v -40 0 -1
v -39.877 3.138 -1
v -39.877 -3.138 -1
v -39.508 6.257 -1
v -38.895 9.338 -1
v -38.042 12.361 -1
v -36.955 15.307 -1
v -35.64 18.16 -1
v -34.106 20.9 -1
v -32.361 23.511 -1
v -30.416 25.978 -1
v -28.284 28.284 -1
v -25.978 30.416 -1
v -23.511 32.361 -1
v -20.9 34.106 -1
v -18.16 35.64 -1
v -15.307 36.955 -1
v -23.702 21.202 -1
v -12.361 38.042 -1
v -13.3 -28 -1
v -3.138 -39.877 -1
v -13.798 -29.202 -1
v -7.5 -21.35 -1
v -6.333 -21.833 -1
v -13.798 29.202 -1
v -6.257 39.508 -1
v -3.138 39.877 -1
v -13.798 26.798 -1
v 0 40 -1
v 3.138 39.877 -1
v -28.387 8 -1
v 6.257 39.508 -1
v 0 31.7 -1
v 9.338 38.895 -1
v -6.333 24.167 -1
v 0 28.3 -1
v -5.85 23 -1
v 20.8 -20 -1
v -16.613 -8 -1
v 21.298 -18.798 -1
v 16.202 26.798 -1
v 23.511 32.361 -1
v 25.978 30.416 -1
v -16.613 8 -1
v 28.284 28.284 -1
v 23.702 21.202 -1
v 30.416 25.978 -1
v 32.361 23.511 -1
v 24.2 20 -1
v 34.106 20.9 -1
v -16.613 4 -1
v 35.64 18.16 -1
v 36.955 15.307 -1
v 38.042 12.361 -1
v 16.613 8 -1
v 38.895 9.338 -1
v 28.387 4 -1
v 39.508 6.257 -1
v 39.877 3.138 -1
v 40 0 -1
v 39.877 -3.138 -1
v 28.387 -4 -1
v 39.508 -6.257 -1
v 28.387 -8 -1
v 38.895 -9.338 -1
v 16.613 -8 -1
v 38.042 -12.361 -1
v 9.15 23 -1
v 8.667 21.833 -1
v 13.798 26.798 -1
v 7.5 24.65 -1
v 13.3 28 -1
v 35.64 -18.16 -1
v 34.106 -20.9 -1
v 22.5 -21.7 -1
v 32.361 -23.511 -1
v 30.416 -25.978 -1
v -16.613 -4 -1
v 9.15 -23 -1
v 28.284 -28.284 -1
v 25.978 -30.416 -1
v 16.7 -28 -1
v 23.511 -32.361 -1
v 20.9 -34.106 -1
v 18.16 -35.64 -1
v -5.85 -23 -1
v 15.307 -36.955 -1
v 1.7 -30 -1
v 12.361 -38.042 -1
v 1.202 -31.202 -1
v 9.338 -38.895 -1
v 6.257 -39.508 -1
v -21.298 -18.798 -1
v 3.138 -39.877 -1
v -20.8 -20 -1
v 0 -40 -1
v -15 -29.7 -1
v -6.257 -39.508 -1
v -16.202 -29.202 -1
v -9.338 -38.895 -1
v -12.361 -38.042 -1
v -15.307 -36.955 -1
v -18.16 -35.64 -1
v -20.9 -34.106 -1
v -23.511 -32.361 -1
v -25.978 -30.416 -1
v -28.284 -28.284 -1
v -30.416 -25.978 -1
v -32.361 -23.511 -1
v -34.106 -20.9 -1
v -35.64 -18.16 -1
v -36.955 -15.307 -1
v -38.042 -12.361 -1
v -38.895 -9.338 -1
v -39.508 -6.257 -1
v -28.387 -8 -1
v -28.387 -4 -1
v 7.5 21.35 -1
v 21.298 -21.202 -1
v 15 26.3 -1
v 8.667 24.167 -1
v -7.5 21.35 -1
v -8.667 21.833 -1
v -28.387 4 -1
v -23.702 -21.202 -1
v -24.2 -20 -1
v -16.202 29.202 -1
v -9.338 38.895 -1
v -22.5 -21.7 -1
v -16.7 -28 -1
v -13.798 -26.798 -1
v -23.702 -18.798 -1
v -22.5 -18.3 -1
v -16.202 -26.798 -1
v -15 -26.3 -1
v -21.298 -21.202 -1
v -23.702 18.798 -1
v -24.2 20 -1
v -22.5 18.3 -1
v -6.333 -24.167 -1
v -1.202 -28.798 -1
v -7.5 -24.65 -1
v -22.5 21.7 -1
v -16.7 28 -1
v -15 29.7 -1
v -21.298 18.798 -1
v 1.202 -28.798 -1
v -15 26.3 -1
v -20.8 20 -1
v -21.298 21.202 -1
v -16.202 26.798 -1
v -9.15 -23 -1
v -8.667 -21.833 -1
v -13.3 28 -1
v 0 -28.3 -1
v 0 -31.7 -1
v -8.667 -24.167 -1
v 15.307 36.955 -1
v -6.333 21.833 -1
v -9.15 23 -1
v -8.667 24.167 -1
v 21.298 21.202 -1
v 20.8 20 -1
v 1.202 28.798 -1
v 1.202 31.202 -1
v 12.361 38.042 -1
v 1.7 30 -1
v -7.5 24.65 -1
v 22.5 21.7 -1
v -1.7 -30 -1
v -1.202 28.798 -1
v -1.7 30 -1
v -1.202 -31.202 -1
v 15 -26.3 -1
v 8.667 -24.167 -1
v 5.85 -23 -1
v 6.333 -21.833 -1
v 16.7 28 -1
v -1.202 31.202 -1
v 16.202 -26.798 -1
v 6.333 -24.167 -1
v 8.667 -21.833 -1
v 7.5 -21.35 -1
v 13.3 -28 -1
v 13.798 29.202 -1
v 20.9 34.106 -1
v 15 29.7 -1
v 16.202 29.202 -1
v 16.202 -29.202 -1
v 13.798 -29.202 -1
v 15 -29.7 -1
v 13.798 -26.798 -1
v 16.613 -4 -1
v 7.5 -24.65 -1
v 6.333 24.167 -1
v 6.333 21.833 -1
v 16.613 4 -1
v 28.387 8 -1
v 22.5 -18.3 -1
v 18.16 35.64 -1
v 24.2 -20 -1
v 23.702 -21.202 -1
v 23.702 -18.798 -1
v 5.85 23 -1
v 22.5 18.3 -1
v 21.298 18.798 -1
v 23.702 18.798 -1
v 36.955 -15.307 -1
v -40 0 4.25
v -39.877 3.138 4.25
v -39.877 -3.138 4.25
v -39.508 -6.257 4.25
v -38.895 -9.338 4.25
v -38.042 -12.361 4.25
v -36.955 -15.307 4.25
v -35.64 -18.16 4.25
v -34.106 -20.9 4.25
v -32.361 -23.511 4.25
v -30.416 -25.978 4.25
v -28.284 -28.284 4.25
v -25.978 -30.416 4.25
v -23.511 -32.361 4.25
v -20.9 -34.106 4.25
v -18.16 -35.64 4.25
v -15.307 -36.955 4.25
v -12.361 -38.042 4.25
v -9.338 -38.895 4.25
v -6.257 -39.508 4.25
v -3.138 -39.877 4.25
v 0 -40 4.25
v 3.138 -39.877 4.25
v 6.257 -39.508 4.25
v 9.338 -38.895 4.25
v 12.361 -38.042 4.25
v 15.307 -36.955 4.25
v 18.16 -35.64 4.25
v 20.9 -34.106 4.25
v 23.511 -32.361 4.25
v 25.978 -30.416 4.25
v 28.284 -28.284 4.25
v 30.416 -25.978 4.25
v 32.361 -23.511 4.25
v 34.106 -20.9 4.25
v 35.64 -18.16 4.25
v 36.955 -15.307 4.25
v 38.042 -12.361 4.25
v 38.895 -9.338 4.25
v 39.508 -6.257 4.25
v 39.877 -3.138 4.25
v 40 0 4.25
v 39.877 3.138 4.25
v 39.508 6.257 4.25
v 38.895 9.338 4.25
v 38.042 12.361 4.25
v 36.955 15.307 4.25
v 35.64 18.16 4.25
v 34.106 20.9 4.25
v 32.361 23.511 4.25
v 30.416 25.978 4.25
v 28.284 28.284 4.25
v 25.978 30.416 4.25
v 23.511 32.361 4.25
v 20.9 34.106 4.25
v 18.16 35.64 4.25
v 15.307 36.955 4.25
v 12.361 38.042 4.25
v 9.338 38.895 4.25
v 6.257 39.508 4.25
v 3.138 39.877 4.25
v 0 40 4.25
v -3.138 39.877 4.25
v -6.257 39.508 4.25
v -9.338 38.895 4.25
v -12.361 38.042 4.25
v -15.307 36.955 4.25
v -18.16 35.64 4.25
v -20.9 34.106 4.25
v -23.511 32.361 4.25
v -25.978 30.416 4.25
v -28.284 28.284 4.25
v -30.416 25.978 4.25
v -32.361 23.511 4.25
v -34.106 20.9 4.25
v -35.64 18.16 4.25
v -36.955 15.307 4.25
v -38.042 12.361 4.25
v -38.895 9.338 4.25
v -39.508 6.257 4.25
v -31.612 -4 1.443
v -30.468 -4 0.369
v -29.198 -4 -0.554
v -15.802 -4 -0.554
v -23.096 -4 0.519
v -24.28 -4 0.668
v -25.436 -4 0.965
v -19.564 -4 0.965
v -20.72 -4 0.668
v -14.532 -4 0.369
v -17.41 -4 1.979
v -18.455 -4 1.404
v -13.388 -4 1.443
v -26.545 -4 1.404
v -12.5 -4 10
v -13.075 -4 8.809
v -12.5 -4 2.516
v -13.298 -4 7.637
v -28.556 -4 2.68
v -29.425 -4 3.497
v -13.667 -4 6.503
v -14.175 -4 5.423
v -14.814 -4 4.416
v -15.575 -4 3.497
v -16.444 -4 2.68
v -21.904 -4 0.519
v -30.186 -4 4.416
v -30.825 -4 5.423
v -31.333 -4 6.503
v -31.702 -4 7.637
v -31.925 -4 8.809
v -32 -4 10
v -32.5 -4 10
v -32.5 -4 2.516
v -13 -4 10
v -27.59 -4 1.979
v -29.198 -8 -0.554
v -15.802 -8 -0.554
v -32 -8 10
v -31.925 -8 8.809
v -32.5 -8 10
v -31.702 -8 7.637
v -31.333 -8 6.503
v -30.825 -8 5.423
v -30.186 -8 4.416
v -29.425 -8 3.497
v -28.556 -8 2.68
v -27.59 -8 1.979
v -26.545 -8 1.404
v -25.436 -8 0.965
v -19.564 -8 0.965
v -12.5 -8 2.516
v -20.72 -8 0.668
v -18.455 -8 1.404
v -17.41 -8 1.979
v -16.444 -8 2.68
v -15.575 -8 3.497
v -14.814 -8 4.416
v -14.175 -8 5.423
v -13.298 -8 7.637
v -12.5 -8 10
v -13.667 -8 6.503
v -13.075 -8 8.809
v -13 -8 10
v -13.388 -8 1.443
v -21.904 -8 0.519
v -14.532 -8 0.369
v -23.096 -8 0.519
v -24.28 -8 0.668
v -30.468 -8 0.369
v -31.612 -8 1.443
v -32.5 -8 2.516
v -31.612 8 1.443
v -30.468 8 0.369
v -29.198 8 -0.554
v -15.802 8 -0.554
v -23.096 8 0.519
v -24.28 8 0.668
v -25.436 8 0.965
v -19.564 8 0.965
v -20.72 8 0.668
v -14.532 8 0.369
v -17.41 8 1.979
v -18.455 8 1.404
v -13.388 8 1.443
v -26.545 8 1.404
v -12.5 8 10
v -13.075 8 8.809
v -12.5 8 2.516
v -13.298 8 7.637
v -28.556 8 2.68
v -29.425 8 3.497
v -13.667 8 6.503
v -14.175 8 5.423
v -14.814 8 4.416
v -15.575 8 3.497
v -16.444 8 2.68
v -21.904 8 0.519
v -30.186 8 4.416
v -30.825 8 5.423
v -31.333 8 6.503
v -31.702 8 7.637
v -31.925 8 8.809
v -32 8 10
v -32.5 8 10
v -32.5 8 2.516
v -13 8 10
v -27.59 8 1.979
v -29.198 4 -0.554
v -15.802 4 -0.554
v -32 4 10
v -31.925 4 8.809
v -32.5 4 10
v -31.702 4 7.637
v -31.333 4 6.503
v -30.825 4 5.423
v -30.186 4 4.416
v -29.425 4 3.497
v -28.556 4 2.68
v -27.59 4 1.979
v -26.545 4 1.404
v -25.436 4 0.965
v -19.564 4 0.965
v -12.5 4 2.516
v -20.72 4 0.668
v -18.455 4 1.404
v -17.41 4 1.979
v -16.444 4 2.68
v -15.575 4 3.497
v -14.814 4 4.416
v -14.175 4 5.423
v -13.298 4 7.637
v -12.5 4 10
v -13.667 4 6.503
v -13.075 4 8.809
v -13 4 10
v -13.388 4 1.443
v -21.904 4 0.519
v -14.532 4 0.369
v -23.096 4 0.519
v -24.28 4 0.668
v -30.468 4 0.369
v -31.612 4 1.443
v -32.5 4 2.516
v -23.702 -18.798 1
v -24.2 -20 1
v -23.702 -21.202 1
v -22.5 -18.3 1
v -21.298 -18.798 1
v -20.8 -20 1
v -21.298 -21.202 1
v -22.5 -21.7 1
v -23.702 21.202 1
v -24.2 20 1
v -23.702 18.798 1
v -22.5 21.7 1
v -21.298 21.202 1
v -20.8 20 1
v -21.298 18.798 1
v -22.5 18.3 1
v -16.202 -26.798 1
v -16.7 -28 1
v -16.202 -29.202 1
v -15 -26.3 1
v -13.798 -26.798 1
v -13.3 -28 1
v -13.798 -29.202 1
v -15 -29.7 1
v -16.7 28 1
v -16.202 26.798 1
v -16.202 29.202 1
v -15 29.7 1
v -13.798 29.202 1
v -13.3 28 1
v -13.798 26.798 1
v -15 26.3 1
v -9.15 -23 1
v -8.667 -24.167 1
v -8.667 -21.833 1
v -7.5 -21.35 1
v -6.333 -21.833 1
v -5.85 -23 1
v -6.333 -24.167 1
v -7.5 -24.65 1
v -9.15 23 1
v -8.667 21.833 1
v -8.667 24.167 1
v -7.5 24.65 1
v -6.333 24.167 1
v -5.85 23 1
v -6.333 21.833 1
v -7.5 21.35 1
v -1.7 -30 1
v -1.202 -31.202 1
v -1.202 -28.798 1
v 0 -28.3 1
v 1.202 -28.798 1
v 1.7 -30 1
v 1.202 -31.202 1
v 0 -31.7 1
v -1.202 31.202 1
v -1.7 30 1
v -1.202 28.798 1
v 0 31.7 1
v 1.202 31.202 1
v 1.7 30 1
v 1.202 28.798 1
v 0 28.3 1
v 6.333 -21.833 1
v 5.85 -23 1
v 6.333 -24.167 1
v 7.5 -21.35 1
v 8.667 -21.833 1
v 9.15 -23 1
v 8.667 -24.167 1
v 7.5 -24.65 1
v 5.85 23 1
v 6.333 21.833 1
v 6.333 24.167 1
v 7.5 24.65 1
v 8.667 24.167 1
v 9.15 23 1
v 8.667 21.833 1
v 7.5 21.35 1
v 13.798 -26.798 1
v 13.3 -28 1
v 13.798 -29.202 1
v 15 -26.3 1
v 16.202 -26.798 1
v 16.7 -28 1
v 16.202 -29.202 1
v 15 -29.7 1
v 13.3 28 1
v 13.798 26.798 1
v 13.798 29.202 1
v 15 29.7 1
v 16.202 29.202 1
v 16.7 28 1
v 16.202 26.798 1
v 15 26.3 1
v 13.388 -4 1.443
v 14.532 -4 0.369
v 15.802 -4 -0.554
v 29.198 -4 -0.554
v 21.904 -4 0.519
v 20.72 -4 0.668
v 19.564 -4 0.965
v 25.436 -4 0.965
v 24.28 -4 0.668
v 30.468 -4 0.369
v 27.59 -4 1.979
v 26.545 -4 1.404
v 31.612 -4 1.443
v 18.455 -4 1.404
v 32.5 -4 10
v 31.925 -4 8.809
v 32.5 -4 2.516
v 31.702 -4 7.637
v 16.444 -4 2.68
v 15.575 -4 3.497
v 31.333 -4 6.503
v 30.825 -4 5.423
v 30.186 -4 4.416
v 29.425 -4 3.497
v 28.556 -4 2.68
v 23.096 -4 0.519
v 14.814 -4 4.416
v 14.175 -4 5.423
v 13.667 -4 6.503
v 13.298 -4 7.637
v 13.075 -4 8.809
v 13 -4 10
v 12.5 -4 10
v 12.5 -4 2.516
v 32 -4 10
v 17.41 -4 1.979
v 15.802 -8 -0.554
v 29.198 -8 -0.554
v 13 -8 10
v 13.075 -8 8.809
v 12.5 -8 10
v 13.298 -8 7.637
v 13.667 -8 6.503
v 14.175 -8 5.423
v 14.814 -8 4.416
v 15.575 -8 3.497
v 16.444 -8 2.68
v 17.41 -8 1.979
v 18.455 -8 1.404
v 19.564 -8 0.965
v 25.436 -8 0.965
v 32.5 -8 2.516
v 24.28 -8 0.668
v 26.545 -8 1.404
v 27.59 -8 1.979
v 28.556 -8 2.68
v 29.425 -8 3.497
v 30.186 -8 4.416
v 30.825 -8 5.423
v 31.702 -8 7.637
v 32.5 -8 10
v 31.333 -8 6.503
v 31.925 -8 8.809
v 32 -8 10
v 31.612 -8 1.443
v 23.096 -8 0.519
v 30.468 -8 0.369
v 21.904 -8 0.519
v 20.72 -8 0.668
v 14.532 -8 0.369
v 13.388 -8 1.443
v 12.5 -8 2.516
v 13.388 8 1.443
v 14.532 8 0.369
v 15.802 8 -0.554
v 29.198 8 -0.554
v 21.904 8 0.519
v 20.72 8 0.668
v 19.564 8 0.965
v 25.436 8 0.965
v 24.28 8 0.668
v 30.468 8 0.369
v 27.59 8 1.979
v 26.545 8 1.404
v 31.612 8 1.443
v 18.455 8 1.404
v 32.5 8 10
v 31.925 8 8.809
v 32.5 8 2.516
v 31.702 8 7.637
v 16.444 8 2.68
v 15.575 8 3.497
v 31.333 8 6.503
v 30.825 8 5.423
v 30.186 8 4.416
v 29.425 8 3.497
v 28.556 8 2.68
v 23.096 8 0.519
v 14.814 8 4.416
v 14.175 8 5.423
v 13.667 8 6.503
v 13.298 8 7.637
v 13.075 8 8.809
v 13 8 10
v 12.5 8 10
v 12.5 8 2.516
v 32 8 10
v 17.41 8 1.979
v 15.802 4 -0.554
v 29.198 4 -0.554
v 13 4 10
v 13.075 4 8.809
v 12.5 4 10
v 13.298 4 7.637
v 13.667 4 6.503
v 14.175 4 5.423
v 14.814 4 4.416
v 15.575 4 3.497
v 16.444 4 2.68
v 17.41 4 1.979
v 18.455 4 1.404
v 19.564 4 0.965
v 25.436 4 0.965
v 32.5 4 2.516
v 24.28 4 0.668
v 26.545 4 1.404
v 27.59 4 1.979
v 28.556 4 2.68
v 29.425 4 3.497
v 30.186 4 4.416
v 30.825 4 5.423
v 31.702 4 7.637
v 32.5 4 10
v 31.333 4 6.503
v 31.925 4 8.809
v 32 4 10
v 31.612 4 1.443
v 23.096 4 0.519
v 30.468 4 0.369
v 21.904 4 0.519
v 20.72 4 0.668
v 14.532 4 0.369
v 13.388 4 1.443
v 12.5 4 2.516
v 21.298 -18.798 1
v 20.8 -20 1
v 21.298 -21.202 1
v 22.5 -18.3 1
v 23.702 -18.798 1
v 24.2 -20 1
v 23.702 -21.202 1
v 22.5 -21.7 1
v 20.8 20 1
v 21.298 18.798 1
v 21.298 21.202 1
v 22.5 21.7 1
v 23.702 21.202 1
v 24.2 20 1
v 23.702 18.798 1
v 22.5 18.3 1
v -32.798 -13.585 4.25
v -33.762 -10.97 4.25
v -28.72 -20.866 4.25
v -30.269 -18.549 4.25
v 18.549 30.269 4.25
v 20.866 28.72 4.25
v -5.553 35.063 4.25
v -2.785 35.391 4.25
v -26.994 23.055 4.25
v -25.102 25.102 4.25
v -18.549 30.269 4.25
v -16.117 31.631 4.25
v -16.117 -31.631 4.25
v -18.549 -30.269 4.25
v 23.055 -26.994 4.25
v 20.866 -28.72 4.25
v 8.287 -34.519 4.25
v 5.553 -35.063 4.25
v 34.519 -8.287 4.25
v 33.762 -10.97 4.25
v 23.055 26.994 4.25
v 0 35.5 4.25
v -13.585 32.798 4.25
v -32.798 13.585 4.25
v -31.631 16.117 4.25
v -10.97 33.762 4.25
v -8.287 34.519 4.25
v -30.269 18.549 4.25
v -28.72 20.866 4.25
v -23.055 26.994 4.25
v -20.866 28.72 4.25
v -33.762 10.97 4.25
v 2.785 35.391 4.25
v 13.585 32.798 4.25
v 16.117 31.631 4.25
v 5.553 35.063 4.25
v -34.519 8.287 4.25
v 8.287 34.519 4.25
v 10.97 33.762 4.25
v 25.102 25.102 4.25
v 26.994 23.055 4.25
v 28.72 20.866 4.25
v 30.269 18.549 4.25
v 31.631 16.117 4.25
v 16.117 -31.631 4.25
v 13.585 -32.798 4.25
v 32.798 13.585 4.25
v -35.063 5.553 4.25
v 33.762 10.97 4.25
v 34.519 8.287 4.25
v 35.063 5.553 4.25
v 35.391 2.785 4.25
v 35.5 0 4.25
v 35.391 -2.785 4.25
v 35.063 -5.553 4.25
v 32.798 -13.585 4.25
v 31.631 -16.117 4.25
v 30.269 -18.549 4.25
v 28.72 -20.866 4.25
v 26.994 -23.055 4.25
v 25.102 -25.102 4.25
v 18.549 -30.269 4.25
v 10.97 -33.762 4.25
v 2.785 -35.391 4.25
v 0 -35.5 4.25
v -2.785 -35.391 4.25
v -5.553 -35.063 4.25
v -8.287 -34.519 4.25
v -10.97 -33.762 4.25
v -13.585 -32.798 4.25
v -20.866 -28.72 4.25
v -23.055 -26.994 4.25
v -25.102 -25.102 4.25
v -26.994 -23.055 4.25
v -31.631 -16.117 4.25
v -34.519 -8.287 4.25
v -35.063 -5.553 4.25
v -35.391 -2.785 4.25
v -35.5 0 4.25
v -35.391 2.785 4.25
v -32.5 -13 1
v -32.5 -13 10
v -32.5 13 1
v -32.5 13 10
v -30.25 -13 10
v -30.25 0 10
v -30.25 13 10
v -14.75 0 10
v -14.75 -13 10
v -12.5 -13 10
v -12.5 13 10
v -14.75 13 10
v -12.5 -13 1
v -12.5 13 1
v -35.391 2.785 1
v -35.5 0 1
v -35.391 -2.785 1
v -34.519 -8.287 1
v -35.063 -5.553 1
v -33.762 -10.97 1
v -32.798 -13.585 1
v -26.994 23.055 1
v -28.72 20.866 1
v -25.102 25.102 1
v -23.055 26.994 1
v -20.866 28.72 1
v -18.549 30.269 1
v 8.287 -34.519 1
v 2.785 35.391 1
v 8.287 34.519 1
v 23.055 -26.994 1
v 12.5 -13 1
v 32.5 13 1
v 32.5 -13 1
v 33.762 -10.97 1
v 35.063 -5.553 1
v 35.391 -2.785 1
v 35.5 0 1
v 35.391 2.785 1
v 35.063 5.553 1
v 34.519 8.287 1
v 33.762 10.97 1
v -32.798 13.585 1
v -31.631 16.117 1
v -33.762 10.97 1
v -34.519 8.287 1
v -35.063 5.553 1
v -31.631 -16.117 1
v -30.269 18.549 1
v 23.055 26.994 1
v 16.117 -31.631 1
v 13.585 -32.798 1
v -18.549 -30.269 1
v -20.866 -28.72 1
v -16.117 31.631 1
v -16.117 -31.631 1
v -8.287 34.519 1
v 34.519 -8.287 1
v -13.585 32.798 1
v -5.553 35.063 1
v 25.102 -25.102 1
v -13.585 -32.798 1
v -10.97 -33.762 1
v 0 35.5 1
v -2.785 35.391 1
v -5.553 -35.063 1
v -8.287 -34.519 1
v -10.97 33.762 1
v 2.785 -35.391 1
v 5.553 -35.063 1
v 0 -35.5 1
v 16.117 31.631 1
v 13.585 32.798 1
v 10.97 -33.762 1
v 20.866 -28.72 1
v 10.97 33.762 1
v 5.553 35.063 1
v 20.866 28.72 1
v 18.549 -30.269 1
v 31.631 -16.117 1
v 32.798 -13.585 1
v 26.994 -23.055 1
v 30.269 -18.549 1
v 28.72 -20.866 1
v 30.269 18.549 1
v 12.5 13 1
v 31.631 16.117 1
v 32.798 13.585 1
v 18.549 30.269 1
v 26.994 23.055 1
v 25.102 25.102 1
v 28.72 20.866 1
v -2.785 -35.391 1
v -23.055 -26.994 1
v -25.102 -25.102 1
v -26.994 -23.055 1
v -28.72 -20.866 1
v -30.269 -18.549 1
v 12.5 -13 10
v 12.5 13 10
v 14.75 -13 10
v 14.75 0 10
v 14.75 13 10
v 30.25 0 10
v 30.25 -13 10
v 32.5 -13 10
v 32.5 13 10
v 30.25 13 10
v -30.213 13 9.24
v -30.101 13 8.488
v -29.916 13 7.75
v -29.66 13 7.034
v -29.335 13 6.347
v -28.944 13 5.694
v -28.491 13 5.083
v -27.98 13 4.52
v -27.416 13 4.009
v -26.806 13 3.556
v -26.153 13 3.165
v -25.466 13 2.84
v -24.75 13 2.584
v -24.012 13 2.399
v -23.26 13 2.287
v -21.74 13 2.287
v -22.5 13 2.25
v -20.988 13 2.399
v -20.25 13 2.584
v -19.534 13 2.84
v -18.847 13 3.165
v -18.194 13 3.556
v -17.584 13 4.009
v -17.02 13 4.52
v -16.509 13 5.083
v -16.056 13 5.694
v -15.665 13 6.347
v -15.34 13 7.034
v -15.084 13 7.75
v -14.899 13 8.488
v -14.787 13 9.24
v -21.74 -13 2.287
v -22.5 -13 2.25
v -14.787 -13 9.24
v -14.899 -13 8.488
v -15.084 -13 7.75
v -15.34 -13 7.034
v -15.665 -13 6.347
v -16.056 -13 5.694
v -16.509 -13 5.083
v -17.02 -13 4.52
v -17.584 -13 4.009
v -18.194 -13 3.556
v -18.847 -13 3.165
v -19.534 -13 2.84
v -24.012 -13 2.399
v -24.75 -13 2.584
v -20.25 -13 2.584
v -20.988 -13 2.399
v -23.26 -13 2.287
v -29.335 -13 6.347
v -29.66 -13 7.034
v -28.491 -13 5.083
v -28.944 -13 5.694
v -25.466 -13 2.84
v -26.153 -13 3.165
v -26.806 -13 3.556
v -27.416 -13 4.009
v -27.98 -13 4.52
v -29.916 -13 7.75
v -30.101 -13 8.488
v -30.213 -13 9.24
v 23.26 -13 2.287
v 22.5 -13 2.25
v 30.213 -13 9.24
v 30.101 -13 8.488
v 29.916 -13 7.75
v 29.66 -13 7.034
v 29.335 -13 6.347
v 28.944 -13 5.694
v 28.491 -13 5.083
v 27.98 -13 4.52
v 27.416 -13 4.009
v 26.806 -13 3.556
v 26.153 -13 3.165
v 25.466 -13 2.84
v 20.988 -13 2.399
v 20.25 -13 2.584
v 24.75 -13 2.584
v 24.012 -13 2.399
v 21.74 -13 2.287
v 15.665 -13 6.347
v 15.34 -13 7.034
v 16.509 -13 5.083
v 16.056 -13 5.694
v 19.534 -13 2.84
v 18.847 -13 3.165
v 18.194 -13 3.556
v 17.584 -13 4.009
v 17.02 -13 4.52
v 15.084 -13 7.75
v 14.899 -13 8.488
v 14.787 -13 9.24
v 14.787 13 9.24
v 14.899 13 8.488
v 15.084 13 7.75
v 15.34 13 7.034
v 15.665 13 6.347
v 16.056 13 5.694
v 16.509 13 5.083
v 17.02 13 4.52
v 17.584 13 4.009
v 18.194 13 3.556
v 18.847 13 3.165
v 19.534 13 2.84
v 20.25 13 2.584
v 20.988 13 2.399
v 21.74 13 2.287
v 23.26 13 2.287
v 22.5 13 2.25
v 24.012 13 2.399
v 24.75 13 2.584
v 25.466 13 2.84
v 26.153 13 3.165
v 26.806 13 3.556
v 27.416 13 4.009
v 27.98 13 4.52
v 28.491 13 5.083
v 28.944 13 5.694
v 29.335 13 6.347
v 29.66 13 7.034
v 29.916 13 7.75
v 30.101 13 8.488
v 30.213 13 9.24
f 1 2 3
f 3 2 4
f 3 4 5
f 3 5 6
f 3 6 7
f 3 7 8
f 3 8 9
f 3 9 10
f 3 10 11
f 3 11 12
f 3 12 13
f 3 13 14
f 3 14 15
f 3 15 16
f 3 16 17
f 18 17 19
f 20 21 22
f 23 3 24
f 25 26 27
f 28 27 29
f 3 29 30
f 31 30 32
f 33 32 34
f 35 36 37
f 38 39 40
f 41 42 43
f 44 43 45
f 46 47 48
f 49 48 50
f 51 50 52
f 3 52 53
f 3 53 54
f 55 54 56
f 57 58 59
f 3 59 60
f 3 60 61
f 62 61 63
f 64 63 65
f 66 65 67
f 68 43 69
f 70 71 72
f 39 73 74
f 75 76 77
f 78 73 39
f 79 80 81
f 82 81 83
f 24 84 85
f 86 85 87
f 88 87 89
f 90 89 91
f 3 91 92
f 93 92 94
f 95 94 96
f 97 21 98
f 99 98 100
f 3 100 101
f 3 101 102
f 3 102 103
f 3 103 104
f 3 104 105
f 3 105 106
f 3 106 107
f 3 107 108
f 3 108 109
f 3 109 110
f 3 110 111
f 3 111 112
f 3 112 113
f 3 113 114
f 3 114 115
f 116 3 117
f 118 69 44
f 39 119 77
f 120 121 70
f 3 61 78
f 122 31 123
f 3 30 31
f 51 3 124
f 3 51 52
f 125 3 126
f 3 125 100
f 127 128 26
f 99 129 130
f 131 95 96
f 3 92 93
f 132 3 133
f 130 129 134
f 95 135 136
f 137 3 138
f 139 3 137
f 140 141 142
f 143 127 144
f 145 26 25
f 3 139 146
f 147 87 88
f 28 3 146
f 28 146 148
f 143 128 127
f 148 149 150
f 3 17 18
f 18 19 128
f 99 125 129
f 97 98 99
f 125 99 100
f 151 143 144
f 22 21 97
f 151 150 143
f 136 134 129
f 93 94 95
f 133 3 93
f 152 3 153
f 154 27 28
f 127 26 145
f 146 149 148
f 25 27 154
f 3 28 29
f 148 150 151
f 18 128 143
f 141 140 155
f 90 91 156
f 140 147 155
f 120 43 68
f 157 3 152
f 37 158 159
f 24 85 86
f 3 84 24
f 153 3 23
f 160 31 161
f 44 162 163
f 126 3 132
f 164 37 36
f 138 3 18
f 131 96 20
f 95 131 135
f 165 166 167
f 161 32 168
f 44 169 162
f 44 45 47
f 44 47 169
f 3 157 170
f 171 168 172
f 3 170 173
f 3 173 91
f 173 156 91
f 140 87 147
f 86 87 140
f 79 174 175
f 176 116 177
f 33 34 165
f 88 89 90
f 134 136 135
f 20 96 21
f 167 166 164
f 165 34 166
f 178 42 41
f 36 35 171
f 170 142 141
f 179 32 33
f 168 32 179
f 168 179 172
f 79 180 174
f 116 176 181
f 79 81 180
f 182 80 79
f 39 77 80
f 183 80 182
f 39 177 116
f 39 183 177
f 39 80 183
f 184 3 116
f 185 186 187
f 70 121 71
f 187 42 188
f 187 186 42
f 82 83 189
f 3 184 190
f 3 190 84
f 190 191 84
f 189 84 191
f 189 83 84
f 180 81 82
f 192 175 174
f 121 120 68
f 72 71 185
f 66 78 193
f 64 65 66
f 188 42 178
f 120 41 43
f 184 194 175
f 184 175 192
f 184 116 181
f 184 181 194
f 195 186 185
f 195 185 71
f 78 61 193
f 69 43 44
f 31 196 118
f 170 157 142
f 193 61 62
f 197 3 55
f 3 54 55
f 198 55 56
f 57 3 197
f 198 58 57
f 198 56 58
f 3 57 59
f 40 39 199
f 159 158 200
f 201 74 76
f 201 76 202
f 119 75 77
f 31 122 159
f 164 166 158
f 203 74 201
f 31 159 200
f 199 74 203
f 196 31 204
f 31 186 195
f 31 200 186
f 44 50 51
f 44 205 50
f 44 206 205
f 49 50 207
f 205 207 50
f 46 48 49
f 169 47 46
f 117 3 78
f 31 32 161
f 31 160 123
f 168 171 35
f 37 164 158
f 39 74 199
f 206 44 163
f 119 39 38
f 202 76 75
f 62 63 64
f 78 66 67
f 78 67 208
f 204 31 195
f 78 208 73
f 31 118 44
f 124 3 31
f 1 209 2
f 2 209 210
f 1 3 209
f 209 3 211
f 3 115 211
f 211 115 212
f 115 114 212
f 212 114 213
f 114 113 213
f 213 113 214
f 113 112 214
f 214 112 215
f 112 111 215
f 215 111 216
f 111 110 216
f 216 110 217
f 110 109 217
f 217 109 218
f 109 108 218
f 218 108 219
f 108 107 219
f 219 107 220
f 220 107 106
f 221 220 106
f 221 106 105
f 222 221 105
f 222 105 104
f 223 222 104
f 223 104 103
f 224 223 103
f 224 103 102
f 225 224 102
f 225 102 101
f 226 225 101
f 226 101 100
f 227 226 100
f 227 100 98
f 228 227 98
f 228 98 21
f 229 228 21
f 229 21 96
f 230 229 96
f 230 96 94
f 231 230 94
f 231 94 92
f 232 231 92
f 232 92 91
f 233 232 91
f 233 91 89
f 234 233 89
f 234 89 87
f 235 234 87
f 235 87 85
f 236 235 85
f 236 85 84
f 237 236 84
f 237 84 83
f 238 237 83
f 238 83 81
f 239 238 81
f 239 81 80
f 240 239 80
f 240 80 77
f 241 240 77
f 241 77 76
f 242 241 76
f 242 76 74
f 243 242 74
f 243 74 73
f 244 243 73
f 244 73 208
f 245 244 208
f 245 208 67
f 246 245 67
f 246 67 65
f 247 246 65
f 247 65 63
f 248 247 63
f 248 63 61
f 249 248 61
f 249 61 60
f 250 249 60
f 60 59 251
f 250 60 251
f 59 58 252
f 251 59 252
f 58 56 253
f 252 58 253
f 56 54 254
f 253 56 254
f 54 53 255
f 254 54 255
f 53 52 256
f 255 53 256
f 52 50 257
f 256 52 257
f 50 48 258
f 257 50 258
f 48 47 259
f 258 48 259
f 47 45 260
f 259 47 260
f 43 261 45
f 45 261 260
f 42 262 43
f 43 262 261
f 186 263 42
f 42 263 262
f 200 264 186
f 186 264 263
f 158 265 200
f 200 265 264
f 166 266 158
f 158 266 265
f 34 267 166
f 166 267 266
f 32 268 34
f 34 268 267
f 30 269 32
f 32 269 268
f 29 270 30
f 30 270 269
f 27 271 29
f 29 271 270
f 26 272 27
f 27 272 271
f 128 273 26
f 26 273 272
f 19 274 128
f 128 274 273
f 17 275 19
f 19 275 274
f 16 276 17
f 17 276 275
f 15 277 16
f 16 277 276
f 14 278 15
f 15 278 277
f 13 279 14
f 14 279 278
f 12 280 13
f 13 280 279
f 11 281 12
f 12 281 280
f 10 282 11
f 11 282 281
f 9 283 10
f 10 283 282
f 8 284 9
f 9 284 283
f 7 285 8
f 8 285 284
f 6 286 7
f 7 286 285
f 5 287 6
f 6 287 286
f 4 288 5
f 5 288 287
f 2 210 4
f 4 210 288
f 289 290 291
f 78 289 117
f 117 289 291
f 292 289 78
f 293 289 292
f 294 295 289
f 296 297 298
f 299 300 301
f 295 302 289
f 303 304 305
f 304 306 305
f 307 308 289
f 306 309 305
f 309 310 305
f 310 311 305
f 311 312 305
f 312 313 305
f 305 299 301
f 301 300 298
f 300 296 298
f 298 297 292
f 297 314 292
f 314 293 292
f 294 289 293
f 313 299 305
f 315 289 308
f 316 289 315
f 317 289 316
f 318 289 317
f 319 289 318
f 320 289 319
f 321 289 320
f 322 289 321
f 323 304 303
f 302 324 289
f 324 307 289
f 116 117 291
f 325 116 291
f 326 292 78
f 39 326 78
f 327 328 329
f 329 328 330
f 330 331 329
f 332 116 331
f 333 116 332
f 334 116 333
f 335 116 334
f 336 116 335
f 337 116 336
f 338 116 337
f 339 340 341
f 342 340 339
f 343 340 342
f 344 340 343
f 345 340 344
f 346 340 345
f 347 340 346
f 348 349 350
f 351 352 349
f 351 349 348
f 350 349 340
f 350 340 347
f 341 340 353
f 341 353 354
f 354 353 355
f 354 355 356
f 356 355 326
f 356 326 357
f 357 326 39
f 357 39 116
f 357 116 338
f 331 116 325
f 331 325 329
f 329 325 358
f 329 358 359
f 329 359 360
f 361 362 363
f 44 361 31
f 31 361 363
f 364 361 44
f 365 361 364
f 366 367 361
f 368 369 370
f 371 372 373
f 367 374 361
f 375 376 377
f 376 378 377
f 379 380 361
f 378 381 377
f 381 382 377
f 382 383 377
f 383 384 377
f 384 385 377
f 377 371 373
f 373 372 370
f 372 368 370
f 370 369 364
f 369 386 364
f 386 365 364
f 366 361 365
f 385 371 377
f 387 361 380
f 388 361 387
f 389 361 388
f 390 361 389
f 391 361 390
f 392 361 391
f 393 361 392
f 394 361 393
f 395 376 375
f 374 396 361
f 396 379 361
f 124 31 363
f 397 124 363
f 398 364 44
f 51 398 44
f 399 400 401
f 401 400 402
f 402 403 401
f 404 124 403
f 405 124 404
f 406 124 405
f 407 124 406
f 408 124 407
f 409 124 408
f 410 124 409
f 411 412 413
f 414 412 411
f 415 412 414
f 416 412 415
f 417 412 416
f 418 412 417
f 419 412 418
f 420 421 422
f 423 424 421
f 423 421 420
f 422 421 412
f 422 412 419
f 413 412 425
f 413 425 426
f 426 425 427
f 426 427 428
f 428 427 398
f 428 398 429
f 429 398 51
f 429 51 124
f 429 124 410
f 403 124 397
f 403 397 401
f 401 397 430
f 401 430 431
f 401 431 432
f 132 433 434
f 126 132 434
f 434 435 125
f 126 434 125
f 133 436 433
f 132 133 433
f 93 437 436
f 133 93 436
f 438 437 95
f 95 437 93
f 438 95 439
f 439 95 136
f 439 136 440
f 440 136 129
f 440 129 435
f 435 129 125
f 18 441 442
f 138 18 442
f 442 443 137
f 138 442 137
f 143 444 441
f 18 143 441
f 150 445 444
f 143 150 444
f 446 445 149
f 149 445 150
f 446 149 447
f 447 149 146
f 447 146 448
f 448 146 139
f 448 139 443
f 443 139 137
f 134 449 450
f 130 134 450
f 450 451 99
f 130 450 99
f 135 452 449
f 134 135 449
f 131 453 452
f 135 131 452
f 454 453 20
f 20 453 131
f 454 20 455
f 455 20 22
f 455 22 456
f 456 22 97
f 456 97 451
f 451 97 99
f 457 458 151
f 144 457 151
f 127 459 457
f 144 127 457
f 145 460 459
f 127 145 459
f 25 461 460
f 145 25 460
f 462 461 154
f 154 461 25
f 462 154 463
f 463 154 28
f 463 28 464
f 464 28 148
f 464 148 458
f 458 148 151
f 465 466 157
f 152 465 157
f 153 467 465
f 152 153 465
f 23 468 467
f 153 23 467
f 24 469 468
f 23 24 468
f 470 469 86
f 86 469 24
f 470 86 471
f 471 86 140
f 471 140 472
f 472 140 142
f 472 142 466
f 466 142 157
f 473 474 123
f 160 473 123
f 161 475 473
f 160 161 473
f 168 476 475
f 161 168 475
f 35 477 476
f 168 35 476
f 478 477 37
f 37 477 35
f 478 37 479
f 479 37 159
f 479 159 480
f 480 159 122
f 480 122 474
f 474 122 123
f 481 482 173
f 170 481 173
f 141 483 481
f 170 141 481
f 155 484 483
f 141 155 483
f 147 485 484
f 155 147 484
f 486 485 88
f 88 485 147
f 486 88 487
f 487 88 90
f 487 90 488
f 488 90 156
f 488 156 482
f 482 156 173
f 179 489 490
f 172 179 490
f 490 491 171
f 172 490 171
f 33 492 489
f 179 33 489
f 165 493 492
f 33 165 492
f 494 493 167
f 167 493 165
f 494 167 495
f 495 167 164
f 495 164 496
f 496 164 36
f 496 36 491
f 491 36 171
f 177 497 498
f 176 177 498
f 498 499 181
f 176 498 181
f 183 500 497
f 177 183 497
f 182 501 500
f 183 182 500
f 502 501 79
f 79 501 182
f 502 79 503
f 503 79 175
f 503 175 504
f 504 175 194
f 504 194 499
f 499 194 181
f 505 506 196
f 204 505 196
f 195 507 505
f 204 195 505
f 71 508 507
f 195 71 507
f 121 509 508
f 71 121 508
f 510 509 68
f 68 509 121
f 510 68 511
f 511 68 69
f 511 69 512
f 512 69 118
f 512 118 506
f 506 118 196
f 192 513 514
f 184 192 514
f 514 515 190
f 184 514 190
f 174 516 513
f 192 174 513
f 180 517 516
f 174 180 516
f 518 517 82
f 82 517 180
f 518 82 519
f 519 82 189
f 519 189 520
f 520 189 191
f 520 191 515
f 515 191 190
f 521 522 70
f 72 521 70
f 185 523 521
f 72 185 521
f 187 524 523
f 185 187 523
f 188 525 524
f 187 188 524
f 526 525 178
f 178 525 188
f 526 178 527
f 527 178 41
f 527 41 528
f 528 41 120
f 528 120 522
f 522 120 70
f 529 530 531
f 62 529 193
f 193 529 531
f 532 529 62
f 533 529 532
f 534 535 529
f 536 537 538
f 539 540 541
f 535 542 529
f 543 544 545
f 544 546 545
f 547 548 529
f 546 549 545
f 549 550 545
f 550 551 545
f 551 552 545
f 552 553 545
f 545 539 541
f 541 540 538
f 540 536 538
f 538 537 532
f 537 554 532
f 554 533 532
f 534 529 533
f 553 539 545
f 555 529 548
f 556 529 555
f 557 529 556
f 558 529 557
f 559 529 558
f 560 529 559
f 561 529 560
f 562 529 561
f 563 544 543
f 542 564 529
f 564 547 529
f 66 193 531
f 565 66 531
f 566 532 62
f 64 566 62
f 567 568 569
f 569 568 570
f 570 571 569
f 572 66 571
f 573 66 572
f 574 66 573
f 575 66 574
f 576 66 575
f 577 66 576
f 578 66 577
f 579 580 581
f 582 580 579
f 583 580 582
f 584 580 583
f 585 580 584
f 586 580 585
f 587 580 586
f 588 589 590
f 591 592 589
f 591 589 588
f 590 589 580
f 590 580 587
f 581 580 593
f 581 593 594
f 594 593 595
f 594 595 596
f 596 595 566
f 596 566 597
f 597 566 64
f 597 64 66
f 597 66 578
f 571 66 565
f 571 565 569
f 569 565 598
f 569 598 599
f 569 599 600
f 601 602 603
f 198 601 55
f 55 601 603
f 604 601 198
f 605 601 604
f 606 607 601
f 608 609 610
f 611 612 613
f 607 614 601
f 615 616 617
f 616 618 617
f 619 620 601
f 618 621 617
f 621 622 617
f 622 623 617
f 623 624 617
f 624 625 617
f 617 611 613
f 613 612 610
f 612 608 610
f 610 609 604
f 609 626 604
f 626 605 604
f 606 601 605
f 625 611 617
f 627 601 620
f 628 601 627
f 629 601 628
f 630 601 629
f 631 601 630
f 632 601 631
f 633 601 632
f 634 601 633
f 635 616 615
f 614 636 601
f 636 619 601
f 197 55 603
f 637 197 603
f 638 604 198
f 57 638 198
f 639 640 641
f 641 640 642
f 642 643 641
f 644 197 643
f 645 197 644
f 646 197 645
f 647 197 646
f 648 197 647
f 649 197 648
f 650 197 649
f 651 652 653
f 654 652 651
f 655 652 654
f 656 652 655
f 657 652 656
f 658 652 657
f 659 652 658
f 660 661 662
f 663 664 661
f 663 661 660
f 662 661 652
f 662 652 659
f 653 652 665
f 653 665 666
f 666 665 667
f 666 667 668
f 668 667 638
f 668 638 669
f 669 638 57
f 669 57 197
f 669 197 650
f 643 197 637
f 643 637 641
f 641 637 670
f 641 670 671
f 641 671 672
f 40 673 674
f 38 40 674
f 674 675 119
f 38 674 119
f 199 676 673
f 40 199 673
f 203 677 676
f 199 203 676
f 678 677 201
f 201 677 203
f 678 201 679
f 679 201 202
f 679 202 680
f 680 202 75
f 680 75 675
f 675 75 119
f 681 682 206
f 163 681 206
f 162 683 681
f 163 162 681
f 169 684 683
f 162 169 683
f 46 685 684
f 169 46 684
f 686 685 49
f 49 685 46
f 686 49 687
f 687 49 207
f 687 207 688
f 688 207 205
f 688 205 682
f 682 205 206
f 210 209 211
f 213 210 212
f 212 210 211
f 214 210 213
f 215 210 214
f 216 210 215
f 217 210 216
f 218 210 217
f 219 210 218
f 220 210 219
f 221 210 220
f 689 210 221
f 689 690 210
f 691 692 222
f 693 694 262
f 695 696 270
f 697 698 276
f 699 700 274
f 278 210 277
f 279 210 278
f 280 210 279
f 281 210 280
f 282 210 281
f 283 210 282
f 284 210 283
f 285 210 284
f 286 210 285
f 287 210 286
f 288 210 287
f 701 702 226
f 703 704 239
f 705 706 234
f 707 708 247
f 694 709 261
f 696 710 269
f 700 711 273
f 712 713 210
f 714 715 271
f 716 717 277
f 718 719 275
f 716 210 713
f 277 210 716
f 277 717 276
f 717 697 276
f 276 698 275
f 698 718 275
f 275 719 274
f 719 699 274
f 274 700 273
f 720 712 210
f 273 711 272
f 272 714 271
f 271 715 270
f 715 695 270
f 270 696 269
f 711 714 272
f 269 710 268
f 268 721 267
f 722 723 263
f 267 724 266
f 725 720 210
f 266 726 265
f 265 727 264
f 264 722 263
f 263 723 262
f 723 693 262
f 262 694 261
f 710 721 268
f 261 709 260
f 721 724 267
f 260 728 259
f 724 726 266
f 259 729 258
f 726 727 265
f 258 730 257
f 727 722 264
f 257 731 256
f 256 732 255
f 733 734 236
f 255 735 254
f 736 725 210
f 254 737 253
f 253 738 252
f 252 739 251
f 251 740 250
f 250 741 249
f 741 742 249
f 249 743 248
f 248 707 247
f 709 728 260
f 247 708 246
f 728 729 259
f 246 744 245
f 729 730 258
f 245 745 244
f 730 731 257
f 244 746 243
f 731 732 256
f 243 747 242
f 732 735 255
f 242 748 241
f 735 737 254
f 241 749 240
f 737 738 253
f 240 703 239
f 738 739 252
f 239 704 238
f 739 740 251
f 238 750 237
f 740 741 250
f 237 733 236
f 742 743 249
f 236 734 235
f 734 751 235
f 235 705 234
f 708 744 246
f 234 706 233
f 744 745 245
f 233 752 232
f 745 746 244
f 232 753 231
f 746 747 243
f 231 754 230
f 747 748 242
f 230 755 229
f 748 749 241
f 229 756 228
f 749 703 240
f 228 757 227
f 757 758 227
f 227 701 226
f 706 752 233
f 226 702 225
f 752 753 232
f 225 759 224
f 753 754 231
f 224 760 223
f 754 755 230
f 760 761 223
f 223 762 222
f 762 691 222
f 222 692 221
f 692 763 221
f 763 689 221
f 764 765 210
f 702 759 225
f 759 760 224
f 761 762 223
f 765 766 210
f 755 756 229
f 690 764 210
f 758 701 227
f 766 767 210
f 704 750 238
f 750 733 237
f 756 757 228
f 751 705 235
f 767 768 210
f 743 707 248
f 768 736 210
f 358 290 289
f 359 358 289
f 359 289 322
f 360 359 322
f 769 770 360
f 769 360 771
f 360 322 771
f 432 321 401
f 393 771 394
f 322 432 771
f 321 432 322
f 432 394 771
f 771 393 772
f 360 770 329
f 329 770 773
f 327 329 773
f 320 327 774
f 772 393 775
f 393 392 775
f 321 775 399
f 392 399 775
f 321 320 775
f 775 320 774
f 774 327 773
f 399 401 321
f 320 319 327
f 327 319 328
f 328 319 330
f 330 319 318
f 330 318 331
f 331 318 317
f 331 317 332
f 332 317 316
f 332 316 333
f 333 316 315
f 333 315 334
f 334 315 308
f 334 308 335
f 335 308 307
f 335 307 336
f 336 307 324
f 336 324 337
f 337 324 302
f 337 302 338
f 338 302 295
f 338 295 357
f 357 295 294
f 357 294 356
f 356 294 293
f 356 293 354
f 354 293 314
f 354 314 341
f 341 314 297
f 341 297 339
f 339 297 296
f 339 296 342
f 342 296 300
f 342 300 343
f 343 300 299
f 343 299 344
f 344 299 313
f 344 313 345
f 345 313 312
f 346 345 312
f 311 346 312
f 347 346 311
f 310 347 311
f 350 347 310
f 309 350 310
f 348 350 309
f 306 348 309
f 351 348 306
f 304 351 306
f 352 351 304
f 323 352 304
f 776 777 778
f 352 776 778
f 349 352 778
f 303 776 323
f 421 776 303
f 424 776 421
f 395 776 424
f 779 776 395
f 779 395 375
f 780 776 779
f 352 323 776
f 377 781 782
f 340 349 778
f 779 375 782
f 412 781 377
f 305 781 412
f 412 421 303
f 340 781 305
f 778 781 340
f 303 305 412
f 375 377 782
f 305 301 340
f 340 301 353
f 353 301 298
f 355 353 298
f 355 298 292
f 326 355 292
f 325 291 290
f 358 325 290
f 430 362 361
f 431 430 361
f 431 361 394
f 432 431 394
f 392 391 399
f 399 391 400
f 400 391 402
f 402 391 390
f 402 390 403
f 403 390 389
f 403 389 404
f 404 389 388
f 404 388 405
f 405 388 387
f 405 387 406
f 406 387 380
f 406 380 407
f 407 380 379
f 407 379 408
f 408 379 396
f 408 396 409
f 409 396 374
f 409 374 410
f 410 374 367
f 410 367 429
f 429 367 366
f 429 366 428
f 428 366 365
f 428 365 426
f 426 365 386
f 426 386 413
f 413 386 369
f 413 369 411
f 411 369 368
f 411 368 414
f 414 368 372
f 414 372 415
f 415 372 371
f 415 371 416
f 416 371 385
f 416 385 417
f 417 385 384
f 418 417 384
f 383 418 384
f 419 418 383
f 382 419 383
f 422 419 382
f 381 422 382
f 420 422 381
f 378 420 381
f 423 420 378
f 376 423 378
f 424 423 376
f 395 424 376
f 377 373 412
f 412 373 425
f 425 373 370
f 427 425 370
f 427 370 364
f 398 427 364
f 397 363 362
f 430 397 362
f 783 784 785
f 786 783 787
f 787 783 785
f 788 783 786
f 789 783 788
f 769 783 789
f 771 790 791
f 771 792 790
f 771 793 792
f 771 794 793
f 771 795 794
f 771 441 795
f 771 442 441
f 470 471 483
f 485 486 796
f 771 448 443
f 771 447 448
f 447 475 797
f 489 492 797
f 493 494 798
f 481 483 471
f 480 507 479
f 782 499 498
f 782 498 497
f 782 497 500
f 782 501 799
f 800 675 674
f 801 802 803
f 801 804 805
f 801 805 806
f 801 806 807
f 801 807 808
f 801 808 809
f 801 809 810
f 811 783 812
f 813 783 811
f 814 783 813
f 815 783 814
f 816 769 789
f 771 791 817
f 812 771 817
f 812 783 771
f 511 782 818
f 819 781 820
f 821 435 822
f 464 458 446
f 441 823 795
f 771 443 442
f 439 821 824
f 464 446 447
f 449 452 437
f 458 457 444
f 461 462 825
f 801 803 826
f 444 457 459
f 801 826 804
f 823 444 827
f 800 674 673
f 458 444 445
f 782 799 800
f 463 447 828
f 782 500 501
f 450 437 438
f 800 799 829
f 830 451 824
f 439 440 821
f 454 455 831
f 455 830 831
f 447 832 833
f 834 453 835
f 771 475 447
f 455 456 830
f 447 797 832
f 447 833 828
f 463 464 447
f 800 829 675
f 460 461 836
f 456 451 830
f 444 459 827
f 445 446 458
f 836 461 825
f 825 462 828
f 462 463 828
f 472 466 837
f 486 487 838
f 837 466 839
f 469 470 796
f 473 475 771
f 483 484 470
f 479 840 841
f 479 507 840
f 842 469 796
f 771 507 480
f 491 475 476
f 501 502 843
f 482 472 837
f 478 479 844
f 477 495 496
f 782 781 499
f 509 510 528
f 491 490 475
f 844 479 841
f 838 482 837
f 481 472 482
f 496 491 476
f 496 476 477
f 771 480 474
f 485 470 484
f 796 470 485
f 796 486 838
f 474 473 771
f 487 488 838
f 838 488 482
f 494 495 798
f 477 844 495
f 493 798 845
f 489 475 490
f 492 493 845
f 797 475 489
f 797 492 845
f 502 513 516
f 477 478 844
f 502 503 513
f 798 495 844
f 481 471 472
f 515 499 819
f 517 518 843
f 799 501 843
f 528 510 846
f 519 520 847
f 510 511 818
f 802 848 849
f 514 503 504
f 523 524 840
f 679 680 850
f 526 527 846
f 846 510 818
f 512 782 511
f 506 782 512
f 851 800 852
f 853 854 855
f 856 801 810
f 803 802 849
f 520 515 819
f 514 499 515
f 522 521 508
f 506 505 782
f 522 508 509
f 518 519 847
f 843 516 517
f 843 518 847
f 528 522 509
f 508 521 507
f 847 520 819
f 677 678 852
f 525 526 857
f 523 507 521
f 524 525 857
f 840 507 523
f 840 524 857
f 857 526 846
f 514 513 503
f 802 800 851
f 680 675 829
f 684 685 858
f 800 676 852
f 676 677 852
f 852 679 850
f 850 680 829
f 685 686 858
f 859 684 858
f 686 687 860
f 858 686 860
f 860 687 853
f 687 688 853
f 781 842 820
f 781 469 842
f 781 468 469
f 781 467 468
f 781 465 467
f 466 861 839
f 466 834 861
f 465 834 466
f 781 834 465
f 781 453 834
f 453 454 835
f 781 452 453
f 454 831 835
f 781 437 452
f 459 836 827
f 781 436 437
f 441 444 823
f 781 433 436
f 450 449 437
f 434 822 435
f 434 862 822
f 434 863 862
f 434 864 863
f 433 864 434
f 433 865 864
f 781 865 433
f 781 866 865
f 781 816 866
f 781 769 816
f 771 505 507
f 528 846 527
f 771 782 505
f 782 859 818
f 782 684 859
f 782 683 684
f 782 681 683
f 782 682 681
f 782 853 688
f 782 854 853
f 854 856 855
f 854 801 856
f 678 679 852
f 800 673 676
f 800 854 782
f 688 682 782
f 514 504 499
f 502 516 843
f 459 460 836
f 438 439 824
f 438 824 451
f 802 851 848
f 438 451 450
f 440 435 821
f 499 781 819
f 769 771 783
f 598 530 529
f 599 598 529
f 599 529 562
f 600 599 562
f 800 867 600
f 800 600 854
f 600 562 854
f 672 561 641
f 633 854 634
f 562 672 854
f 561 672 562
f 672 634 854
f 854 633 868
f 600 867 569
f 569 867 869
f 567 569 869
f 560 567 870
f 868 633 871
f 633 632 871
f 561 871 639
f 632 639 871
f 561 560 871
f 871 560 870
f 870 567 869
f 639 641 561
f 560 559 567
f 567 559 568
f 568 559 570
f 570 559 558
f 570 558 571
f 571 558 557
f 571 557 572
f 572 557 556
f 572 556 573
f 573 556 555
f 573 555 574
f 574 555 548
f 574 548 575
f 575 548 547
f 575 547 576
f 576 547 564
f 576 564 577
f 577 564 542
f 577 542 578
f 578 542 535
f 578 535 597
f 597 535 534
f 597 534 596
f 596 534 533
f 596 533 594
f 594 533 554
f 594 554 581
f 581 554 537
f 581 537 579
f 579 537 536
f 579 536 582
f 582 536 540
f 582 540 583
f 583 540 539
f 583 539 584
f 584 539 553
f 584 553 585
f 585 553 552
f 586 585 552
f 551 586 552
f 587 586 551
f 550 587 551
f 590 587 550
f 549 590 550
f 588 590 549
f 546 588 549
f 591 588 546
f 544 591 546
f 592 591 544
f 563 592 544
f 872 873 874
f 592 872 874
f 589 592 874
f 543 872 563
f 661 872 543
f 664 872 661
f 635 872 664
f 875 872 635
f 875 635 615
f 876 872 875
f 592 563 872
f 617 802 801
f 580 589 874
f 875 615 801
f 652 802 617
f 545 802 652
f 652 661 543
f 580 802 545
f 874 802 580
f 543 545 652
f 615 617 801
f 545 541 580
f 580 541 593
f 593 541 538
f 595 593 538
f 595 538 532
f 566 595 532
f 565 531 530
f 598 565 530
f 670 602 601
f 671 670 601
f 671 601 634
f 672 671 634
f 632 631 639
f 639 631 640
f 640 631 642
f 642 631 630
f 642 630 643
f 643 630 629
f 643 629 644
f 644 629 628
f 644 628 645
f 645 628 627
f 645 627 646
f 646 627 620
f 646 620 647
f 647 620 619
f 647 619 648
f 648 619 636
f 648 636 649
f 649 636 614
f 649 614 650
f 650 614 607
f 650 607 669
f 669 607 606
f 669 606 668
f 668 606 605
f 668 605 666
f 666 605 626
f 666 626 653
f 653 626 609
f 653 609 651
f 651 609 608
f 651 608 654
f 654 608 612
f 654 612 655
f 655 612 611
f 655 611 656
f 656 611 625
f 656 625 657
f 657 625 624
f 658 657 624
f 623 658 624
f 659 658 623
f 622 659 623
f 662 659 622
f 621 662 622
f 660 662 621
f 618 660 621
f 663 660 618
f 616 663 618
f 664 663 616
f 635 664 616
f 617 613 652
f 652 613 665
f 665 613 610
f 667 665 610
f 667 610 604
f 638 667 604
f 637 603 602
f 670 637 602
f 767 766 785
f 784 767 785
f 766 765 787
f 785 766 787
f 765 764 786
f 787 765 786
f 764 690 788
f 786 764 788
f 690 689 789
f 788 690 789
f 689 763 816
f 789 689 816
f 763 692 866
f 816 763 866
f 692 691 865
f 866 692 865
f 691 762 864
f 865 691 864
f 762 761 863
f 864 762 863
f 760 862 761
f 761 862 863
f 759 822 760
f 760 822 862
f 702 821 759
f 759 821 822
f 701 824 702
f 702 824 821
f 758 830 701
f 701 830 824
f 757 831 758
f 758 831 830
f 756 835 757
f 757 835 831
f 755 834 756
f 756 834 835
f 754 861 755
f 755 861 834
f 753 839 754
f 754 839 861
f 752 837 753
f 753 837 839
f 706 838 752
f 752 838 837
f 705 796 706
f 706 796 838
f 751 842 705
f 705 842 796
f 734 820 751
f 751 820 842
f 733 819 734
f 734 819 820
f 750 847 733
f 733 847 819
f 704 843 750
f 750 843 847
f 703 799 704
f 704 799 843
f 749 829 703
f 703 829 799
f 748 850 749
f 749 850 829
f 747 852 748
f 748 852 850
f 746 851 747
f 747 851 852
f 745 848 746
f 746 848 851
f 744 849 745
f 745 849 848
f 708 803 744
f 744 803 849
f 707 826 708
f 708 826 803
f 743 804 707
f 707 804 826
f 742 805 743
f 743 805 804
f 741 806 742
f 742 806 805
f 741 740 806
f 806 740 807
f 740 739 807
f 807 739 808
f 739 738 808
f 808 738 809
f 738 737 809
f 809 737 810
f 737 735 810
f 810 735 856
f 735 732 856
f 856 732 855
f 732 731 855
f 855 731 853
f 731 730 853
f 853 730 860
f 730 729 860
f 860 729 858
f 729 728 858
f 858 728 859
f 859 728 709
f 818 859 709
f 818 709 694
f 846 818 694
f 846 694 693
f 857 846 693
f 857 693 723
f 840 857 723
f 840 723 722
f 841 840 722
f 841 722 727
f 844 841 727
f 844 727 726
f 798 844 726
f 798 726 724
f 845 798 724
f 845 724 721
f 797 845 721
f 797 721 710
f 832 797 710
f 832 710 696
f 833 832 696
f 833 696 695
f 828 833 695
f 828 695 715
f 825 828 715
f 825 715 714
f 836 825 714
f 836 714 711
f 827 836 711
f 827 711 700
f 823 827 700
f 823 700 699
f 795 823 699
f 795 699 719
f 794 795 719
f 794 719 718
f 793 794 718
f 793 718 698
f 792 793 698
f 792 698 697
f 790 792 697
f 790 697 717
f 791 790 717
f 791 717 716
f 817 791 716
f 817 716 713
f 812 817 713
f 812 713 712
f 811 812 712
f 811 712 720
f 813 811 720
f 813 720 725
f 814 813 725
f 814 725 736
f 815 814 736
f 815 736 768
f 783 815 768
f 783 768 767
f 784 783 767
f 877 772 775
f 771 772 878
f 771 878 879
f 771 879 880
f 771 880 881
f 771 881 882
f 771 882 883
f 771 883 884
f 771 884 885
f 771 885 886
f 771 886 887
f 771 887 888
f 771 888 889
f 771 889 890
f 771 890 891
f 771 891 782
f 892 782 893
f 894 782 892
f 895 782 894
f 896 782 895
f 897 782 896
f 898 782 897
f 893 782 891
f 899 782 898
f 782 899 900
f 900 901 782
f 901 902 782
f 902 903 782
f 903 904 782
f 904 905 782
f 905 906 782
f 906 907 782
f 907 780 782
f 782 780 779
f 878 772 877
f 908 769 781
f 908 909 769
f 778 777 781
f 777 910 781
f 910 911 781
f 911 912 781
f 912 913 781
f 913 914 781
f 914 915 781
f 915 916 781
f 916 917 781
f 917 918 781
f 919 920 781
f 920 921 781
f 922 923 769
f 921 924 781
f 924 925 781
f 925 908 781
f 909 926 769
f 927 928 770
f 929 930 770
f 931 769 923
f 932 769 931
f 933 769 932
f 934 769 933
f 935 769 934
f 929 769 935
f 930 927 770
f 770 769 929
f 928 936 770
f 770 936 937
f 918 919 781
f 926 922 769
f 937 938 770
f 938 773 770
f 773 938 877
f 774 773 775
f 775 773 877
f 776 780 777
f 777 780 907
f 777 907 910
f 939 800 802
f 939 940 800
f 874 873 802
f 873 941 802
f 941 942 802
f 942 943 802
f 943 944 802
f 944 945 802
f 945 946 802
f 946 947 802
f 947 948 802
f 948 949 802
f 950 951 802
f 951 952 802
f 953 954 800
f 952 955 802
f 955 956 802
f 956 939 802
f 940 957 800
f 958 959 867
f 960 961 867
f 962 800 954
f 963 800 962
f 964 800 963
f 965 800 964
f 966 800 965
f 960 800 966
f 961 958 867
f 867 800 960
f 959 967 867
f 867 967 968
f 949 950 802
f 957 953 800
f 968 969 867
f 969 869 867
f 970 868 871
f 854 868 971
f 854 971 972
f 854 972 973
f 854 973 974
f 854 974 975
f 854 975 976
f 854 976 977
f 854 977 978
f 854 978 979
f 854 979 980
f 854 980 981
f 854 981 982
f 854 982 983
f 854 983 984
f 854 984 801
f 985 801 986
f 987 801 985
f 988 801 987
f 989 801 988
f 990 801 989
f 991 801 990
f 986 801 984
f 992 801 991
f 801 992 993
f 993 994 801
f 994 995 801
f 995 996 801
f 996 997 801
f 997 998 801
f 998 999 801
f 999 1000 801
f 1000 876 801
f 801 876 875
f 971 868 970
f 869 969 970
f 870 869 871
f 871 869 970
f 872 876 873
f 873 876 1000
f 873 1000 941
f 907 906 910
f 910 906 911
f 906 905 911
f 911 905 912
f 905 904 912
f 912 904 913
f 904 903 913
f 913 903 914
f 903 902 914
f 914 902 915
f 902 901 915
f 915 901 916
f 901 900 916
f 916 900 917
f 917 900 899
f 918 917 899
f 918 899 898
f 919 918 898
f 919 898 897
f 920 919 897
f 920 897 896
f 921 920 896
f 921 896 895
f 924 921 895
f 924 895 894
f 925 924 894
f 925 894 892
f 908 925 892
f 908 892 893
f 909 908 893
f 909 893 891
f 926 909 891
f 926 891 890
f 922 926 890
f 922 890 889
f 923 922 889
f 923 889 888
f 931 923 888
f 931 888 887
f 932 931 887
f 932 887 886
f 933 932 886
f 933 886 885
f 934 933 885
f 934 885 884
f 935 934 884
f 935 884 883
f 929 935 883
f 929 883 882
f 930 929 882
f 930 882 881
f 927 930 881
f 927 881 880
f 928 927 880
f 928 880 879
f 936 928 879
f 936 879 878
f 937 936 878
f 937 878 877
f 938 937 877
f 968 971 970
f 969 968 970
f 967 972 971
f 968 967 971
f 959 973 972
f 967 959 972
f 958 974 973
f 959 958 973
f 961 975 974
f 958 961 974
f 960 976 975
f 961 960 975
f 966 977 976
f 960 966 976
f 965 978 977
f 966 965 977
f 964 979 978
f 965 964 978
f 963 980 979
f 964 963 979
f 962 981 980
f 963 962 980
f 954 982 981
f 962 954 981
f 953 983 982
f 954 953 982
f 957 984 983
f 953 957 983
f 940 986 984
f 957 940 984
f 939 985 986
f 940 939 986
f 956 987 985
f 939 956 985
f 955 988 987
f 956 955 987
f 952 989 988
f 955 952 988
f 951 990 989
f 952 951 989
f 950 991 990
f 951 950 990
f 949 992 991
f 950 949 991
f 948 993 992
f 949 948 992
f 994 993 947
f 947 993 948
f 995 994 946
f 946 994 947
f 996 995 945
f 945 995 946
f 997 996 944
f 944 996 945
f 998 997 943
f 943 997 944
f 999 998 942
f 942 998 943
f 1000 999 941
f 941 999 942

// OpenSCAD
// AIR HOCKEY ROBOT PROJECT (AHROBOT)
// 
// by Jose Julio

// X axis carriage
// designed for only two bearings (I could test a 3 bearings version)

diameter = 80;
rod_separation=45;
bearing_diameter=15.5;
bearing_length=26;

module horizontal_bearing_holes(bearings=1){
 cutter_lenght = 4+bearings*25;
 one_holder_lenght = 8+25;
 holder_lenght = 8+bearings*25;
 
 // Main bearing cut
 difference(){
  translate(v=[0,0,12]) rotate(a=[90,0,0]) translate(v=[0,0,-cutter_lenght/2]) cylinder(h = cutter_lenght, r=bearing_diameter/2, $fn=64);
  // Bearing retainers
  translate(v=[0,-holder_lenght/2,3]) cube(size = [24,6,34], center = true);
  translate(v=[0,+holder_lenght/2,3]) cube(size = [24,6,34], center = true);
 }
 
 // Ziptie cutouts

 ziptie_cut_ofset = 0;
 for ( i = [0 : bearings-1] ){
  // For easier positioning I move them by half of one 
  // bearing holder then add each bearign lenght and then center again
  translate(v=[0,-holder_lenght/2,0]) translate(v=[0,one_holder_lenght/2+i*25,0]) difference(){
   union(){
    translate(v=[0,2-6,12]) rotate(a=[90,0,0]) translate(v=[0,0,0]) cylinder(h = 4, r=12.5, $fn=50);
    translate(v=[0,2+6,12]) rotate(a=[90,0,0]) translate(v=[0,0,0]) cylinder(h = 4, r=12.5, $fn=50);
   }
   translate(v=[0,10,12]) rotate(a=[90,0,0]) translate(v=[0,0,0]) cylinder(h = 24, r=9.5, $fn=50);
  }
 }

 
}

module border()
{
	difference()
	{
	cylinder (r=diameter/2, h=4.5,center=true,$fn=80);
	cylinder (r=diameter/2-4.5, h=6,center=true,$fn=80);
	}
}

module x_carriage_beltcut(){
 // Cut in the middle for belt
 translate([-5.5+1,16.5,8]) cube([8,25,15]);
 // Cut clearing space for the belt
 //translate([-38,5,8]) cube([40,13,15]);
 // Belt slit
 translate([-32,16,8]) cube([80,1.25,15]);
 // Smooth entrance
 translate([-30,16.5,15.3]) rotate([45,0,0]) cube([80,15,15]);
 // Smooth the block on the upper side
 //translate([-66,27,15]) rotate([30,0,0]) cube([80,15,15]);
 // Teeth cuts (GT2)
 for ( i = [0 : 32] ){
  translate([30-i*2,14.5,8]) cube([1.15,2,15]);
 }
}

module belt()
{
	difference()
	{
	translate ([9,0,8]) cube([12,38,16],center=true);
	translate([25,0,-2]) rotate([0,0,90]) x_carriage_beltcut();
	}
}

module x_carriage_base()
{	
	cylinder (r=diameter/2, h=2,center=true,$fn=80);
	translate([0,0,2]) border();

	// bearing bases
	translate([rod_separation/2,0,5]) cube([20,bearing_length,10],center=true);
	translate([-rod_separation/2,0,5]) cube([20,bearing_length,10],center=true);

	//belt();
}

module x_carriage_holes()
{
	// bearing holes
	translate([rod_separation/2,0,-2]) horizontal_bearing_holes();
	translate([-rod_separation/2,0,-2]) horizontal_bearing_holes();

	// holes for belt
	translate([7.5,23,0]) cylinder(r=1.65,h=20,center=true,$fn=8);
	translate([7.5,-23,0]) cylinder(r=1.65,h=20,center=true,$fn=8);
	translate([-7.5,23,0]) cylinder(r=1.65,h=20,center=true,$fn=8);
	translate([-7.5,-23,0]) cylinder(r=1.65,h=20,center=true,$fn=8);
	

	// M3 holes
	translate([0,-30,0]) cylinder(r=1.7,h=20,center=true,$fn=8);
	translate([15,-28,0]) cylinder(r=1.7,h=20,center=true,$fn=8);
	translate([-15,-28,0]) cylinder(r=1.7,h=20,center=true,$fn=8);
	translate([0,30,0]) cylinder(r=1.7,h=20,center=true,$fn=8);
	translate([15,28,0]) cylinder(r=1.7,h=20,center=true,$fn=8);
	translate([-15,28,0]) cylinder(r=1.7,h=20,center=true,$fn=8);

	translate([rod_separation/2,-20,0]) cylinder(r=1.7,h=20,center=true,$fn=8);
	translate([rod_separation/2,20,0]) cylinder(r=1.7,h=20,center=true,$fn=8);
	translate([-rod_separation/2,-20,0]) cylinder(r=1.7,h=20,center=true,$fn=8);
	translate([-rod_separation/2,20,0]) cylinder(r=1.7,h=20,center=true,$fn=8);
}

difference()
{
x_carriage_base();
x_carriage_holes();
}
